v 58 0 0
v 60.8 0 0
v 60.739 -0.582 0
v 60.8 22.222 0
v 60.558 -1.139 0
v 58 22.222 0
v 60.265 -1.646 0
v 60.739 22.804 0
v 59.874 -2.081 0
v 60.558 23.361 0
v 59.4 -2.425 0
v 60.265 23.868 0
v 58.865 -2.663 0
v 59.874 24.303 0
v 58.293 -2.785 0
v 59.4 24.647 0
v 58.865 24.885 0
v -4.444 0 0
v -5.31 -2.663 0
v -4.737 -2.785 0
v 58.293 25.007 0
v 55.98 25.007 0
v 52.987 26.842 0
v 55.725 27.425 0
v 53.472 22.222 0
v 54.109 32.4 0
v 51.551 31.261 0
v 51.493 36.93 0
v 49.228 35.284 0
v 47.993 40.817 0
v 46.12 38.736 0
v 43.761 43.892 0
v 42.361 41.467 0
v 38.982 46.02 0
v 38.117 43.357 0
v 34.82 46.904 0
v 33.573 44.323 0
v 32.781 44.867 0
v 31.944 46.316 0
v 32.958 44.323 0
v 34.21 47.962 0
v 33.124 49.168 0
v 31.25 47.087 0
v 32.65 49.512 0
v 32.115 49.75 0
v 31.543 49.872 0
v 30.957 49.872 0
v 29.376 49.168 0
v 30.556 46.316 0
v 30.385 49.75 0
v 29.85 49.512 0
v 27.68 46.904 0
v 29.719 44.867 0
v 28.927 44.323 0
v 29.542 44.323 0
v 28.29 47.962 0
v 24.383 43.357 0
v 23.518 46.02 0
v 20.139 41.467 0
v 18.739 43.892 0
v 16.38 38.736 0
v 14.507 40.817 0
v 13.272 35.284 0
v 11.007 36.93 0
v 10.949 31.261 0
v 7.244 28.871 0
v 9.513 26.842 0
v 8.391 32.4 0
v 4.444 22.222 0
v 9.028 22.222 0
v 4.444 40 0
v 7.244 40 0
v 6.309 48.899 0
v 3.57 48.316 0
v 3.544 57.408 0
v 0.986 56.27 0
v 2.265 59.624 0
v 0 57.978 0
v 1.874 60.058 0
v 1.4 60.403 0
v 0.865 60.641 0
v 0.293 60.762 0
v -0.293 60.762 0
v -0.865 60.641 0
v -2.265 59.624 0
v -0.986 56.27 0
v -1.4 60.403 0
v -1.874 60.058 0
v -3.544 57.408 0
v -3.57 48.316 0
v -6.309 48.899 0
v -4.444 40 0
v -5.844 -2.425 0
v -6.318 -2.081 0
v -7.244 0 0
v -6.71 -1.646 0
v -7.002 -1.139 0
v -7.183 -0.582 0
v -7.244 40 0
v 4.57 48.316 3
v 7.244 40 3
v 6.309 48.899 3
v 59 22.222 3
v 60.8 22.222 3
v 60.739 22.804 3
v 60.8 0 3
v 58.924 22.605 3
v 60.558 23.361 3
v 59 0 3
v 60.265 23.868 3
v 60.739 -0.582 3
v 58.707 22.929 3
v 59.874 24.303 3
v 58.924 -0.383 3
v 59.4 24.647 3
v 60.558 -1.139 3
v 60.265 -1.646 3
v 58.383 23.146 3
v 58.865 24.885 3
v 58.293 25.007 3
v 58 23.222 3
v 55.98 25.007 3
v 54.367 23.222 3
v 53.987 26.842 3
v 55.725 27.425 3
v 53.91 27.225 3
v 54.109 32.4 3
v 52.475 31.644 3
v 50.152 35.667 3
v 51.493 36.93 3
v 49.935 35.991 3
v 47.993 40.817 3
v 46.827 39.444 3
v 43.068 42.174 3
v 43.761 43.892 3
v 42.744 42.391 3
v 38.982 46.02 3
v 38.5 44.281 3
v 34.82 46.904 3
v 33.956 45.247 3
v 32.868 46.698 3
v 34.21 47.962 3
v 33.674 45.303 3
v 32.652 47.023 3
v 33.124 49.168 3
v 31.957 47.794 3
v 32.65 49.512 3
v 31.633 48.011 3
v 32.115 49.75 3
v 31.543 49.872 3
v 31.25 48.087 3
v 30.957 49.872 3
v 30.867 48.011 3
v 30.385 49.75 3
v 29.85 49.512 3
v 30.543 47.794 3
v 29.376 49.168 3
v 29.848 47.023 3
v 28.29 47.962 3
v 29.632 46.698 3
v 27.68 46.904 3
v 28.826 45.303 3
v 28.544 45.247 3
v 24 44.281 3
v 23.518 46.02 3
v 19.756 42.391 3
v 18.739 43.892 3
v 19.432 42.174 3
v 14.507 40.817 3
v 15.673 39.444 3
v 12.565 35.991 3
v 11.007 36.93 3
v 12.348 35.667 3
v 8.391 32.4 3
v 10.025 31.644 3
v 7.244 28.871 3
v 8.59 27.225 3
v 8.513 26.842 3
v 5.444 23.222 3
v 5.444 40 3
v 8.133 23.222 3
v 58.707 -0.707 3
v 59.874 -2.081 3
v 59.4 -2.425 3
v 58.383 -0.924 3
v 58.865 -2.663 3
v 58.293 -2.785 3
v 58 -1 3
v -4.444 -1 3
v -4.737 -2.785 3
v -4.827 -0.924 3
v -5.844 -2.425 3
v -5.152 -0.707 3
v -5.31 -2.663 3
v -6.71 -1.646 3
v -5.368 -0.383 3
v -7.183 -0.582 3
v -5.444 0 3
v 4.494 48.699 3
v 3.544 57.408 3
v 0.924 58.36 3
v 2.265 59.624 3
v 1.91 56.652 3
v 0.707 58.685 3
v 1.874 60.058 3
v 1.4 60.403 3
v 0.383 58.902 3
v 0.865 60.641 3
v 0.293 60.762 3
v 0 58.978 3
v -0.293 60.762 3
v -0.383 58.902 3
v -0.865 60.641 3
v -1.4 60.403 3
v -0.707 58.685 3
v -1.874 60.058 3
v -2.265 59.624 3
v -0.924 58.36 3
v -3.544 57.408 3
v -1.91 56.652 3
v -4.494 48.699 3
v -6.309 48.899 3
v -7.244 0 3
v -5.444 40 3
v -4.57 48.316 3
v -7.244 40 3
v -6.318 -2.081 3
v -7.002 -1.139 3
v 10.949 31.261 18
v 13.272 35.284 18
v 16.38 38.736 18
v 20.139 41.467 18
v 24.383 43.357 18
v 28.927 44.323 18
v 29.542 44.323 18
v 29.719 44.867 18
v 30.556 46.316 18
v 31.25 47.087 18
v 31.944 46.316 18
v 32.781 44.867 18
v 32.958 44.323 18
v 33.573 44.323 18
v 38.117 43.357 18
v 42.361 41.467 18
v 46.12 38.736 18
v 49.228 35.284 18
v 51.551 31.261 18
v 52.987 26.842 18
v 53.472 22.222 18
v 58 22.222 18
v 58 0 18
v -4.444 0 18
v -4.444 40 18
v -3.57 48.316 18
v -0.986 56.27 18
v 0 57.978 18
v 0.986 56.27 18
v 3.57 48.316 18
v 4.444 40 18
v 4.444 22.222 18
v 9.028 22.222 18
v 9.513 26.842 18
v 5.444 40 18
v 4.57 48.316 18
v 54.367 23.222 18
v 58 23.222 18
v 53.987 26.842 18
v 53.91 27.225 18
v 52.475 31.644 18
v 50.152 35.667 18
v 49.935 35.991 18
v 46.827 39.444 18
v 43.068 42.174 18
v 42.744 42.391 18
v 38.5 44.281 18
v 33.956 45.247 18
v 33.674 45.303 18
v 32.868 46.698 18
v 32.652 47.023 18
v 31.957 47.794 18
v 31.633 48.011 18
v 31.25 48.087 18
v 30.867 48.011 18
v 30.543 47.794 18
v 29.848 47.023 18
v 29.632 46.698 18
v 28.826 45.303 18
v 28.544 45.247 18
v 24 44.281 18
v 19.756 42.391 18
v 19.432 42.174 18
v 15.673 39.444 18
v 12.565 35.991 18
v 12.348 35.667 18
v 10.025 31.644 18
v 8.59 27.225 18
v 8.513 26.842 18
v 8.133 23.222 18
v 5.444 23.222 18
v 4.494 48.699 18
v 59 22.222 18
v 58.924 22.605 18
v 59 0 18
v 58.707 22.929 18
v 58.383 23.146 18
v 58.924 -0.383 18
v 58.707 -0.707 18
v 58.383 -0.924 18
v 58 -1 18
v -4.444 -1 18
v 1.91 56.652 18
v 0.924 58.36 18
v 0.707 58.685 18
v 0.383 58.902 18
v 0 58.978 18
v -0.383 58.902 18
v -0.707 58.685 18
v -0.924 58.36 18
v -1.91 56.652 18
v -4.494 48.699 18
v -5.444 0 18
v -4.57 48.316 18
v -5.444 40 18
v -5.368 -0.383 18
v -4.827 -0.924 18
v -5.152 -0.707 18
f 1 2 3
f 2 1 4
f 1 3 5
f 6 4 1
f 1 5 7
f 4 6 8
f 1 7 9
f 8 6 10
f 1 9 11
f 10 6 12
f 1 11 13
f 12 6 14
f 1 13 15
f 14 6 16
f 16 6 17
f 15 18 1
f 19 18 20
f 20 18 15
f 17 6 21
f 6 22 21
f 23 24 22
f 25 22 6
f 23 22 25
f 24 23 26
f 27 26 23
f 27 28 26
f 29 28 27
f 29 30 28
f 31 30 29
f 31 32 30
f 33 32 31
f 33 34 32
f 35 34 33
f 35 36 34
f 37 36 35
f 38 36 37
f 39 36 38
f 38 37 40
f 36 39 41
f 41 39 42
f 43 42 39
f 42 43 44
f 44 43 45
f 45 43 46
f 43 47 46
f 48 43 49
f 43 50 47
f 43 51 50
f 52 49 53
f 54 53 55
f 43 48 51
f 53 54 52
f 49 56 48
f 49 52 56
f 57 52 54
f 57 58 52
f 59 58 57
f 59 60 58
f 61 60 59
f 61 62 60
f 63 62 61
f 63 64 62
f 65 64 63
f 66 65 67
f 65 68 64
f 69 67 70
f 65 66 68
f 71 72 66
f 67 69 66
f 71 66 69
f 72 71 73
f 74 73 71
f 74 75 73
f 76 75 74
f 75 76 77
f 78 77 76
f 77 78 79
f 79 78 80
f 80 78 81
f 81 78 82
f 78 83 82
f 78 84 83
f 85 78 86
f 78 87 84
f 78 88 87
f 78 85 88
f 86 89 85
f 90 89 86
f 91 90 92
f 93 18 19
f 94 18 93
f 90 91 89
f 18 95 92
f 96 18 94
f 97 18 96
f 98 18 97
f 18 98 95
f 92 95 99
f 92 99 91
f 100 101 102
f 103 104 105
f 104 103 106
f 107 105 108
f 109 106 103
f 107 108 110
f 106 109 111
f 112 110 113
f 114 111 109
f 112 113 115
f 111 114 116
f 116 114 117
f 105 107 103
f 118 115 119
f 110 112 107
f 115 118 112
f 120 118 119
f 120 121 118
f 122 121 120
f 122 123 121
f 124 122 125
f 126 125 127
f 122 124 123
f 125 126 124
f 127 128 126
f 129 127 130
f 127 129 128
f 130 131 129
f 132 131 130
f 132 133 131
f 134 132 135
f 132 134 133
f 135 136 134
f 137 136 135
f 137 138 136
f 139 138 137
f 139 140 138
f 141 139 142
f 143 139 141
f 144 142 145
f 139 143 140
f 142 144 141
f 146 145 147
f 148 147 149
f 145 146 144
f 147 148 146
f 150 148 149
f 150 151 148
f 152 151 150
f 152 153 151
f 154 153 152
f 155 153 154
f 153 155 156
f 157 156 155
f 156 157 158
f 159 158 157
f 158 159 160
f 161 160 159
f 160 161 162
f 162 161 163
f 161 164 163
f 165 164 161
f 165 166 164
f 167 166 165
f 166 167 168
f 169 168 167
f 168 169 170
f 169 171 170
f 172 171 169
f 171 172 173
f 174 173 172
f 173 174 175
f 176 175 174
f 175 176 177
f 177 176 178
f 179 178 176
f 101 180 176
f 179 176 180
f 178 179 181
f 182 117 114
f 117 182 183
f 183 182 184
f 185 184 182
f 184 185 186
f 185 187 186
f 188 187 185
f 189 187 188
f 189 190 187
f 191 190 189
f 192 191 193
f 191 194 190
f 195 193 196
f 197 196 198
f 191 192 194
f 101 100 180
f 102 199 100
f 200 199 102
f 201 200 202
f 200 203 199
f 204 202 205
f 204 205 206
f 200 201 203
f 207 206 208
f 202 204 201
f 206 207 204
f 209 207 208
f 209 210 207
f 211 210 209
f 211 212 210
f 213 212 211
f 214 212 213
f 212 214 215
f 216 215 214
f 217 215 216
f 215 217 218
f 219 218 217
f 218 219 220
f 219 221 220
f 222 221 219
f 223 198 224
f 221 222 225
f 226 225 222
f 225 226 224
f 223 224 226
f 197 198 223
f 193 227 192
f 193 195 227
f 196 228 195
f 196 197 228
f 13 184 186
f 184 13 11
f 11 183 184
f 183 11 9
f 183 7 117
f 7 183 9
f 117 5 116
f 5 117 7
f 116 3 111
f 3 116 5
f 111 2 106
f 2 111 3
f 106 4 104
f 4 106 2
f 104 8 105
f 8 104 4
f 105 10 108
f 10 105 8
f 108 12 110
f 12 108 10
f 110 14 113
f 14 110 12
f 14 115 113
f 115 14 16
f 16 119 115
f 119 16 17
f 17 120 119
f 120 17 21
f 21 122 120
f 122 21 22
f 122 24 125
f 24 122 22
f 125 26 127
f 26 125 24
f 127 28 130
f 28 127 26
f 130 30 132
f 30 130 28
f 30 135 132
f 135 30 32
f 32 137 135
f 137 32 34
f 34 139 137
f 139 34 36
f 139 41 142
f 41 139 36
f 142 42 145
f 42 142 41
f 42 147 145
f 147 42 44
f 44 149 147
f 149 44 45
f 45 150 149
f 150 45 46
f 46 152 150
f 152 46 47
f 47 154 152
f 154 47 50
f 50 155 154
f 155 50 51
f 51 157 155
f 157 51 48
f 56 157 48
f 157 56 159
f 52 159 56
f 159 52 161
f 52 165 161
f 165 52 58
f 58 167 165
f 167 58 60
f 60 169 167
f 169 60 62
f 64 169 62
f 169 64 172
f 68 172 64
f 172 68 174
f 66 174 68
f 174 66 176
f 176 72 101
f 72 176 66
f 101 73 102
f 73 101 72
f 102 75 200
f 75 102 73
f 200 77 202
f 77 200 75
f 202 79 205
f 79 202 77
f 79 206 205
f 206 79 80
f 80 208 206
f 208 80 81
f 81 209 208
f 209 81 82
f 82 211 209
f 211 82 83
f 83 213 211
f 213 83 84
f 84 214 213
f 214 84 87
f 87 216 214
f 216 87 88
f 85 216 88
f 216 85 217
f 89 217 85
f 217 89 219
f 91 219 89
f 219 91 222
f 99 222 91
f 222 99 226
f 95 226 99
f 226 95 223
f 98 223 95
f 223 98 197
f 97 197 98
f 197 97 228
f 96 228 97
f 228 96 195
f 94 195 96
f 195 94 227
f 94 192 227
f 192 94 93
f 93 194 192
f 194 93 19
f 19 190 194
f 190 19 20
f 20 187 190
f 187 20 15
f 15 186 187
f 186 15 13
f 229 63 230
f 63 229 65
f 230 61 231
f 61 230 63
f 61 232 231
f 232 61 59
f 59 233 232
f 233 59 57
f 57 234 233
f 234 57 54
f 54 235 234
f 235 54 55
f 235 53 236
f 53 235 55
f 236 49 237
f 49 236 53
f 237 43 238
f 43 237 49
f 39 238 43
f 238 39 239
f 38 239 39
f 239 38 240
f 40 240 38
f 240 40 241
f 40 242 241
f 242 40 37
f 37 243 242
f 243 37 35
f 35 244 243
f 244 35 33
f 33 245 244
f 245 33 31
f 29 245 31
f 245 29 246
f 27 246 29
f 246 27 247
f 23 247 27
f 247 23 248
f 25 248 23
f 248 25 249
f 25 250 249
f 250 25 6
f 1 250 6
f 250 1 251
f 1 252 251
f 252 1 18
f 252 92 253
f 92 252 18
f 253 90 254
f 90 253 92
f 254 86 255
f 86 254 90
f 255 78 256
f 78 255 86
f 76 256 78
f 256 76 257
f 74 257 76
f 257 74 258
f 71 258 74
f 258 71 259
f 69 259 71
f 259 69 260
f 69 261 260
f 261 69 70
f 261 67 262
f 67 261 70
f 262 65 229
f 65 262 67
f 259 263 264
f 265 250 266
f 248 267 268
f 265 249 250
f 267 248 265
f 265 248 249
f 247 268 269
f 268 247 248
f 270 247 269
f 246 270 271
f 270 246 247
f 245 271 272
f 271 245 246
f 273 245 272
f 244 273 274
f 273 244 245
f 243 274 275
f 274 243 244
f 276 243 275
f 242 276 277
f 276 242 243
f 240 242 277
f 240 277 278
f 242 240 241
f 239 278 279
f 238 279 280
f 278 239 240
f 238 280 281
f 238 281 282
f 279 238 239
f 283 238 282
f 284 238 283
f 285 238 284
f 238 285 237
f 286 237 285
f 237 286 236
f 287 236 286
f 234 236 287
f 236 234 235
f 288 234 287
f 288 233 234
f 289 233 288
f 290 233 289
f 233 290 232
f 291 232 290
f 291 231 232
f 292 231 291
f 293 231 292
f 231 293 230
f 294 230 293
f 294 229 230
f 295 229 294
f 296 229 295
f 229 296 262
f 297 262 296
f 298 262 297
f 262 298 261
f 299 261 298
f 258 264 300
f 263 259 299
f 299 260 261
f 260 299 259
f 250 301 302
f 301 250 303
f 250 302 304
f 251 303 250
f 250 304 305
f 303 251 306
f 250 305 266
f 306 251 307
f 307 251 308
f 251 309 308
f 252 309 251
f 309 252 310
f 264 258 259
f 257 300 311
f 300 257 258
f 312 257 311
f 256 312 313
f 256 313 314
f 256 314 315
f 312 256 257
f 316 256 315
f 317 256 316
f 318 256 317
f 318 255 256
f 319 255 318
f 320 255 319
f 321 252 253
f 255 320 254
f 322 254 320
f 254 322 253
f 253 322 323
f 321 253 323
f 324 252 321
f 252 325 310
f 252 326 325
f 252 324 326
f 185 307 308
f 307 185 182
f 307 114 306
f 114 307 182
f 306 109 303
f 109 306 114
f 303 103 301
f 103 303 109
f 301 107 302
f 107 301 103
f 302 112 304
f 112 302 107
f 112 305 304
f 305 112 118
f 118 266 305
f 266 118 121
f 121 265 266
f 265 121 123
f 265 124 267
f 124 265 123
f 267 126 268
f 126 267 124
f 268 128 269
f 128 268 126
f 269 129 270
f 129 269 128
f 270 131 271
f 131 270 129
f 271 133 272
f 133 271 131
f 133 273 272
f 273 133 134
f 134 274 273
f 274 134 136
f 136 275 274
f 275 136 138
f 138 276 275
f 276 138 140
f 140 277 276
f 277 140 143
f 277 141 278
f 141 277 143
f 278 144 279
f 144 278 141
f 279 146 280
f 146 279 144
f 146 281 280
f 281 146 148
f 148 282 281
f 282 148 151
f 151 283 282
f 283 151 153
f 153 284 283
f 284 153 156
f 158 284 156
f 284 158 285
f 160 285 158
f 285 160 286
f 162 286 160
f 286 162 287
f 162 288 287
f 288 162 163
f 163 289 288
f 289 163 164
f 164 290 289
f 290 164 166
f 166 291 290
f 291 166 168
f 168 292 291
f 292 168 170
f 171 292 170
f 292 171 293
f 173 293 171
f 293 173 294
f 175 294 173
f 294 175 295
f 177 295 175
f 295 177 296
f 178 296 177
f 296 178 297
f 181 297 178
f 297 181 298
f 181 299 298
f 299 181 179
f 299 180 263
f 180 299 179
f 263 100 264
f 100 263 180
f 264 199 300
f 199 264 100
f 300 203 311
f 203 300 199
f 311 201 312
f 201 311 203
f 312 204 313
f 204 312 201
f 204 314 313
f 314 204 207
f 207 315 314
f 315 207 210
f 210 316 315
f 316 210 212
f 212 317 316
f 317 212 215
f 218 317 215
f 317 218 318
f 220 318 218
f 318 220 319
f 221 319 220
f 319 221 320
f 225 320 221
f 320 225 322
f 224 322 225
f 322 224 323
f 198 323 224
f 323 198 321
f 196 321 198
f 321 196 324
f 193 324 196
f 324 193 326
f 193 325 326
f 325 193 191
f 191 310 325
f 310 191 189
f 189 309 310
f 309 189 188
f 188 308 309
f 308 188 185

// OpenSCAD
// file: Common.scad
module offset_shell(thickness = 0.1) {
  render() {
      difference() {
          minkowski() {
            children();
            circle(2* thickness, center=true);
          }
        children();
      }
   }
}

module cookie_cutter(handle_thickness=8, cutter_tickness=3, total_height=15) {
    union() {
        linear_extrude(height = total_height*(0.15), slices = 60) {
            scale([.2,.2,1]) {
              offset_shell(handle_thickness) {
                children();

              }
            }
        };
        linear_extrude(height = total_height*(0.9), slices = 60)
            translate([0,0,2])
            scale([.2,.2,1]) {
              offset_shell(cutter_tickness) {
                children();
            }
        };
    }
}

module rod_with_clipped_circle(square_d, circle_d, circle_placement) {
    difference() {
        square(square_d, center=true);
        translate(circle_placement) circle(circle_d, center=true);
    }
}

//module cookie_press(handle_thickness=2.5, cutter_tickness=1, total_height=10) {
//    union() {
//        cookie_cutter(handle_thickness, cutter_tickness, total_height);
//        translate([0,0,10]) children();
//    }
//}
//
//
// file: ../ComplexShapes.scad
include <BasicShapes.scad>

module HalfCylinder(r, h, e=1, center=false) {
    translate([0,0, center ? -h/2 : 0])difference(){
        cylinder(h,r,r);
        translate([0,-r,-e])cube([2*r,2*r,h+2*e]);
    }
}

module HalfCircle(r) {
    difference(){
        circle(r);
        translate([-r,-2*r,0]) square(2*r);
    }
}

// http://benjamin-engel.blogspot.com/2015/07/openscad-tips-and-tricks.html

module equilateral_triangle(h) {
    rotate([0,0,-30]) circle(r=h, $fn=3);
}

module Crescent(r, fatten_scale=1, curve_angle=0, rotate=0) {
    r_prime = r / fatten_scale;
    rotate([0,0,rotate]) difference() {
        circle(r_prime*1.1);
        translate([r_prime/4, curve_angle*r_prime/4, 0]) circle(r_prime*fatten_scale);
    }
}


module round_edges(r) {
    minkowski() {
        children();
        circle(r);
    };
}

module CrescentV2(outer_r, inner_r, r_shift, edge_rounding=2) {
    // Different way to construct ... rounded edges ...
   round_edges(edge_rounding) {
        difference() {
            circle(outer_r);
            translate(r_shift) circle(inner_r);
        };
    };
}


//module Arch(x,y,r) {
//    // http://kitwallace.co.uk/Blog/item/2013-01-28T17:59:00Z
//    union() {
//        intersection() {
//           translate([x,y,0]) circle(r);
//           translate([-x,y,0]) circle(r);
//        }
//        translate([0,y/2,0]) square(size=[2 * (r-x), y], center=true);
//    }
//}

module Arch(width, arc_height, strech_height=0) {
    // http://kitwallace.co.uk/Blog/item/2013-01-28T17:59:00Z
    r = arc_height;
    x = (width / 2) - r;
    y = arc_height + strech_height;
    union() {
        intersection() {
           translate([x,y,0]) circle(r);
           translate([-x,y,0]) circle(r);
        }
        translate([0,y/2,0]) square(size=[width, y], center=true);
    }
}
// file: ../BasicShapes.scad
module Star(points, outer, inner_defaulted=0) {
    inner = inner_defaulted == 0 ? 2 * outer  : inner_defaulted;
	// polar to cartesian: radius/angle to x/y
	function x(r, a) = r * cos(a);
	function y(r, a) = r * sin(a);
	
	// angular width of each pie slice of the star
	increment = 360/points;
	
	union() {
		for (p = [0 : points-1]) {
			
			// outer is outer point p
			// inner is inner point following p
			// next is next outer point following p

			assign(	
                x_outer = x(outer, increment * p),
                y_outer = y(outer, increment * p),
                x_inner = x(inner, (increment * p) + (increment/2)),
                y_inner = y(inner, (increment * p) + (increment/2)),
                x_next  = x(outer, increment * (p+1)),
                y_next  = y(outer, increment * (p+1))
            ) {
				polygon(
                    points = [
                        [x_outer, y_outer], 
                        [x_inner, y_inner],
                        [x_next, y_next], 
                        [0, 0]
                    ], 
                    paths  = [[0, 1, 2, 3]]
                );
			}
		}
	}
}

//https://github.com/openscad/MCAD/blob/master/shapes.scad
module Hexagon(size) {
  Star(3, size, size);
}

module Octagon(size) {
  Star(4, size, size);
}

module Decagon(size) {
  Star(5, size, size);
}

module Decagon(size) {
  Star(5, size, size);
}

module Dodecagon(size) {
  Star(6, size, size);
}
// main file
include <../BasicShapes.scad>
include <../ComplexShapes.scad>
include <Common.scad>

// How do I make a shell???
// Apporach 1 ... manually trying to strech an image ...
//module MosqueShell(width, shell_thickness=0.05) {
//
//    difference() {
//        scale([1.05,1.05,1]) translate([0,0,0]) Mosque(width, 0.2, 2.0);
//        translate([0,1,0]) Mosque(width, door_scale=.24, crescent_scale=1.25, crescent_rotation=17.5);
//
//   }

//}
// Approach 2 ... doing this ...

module Minaret(size=45) {
//        color("green") 
    translate([0,0,0]) Arch(size/4.5, size);
}

module Dome(size=45) {
    union() {
        translate([size/1.28,size/1.8]) difference() {
            circle(size/1.8, center=true);
            translate([0,-size/1.64])square([2*size/1.64, 2*size/1.64], center=true);
        };
        translate([size/1.28,size/1.19]) Arch(size/9, size/5);
    }
}


module Mosque(size=45) {
    Minaret(size);
    Dome(size);
    square([1.45*size,size/1.8]);
}

cookie_cutter(7,2.5,20) {
    Mosque(200);
}
